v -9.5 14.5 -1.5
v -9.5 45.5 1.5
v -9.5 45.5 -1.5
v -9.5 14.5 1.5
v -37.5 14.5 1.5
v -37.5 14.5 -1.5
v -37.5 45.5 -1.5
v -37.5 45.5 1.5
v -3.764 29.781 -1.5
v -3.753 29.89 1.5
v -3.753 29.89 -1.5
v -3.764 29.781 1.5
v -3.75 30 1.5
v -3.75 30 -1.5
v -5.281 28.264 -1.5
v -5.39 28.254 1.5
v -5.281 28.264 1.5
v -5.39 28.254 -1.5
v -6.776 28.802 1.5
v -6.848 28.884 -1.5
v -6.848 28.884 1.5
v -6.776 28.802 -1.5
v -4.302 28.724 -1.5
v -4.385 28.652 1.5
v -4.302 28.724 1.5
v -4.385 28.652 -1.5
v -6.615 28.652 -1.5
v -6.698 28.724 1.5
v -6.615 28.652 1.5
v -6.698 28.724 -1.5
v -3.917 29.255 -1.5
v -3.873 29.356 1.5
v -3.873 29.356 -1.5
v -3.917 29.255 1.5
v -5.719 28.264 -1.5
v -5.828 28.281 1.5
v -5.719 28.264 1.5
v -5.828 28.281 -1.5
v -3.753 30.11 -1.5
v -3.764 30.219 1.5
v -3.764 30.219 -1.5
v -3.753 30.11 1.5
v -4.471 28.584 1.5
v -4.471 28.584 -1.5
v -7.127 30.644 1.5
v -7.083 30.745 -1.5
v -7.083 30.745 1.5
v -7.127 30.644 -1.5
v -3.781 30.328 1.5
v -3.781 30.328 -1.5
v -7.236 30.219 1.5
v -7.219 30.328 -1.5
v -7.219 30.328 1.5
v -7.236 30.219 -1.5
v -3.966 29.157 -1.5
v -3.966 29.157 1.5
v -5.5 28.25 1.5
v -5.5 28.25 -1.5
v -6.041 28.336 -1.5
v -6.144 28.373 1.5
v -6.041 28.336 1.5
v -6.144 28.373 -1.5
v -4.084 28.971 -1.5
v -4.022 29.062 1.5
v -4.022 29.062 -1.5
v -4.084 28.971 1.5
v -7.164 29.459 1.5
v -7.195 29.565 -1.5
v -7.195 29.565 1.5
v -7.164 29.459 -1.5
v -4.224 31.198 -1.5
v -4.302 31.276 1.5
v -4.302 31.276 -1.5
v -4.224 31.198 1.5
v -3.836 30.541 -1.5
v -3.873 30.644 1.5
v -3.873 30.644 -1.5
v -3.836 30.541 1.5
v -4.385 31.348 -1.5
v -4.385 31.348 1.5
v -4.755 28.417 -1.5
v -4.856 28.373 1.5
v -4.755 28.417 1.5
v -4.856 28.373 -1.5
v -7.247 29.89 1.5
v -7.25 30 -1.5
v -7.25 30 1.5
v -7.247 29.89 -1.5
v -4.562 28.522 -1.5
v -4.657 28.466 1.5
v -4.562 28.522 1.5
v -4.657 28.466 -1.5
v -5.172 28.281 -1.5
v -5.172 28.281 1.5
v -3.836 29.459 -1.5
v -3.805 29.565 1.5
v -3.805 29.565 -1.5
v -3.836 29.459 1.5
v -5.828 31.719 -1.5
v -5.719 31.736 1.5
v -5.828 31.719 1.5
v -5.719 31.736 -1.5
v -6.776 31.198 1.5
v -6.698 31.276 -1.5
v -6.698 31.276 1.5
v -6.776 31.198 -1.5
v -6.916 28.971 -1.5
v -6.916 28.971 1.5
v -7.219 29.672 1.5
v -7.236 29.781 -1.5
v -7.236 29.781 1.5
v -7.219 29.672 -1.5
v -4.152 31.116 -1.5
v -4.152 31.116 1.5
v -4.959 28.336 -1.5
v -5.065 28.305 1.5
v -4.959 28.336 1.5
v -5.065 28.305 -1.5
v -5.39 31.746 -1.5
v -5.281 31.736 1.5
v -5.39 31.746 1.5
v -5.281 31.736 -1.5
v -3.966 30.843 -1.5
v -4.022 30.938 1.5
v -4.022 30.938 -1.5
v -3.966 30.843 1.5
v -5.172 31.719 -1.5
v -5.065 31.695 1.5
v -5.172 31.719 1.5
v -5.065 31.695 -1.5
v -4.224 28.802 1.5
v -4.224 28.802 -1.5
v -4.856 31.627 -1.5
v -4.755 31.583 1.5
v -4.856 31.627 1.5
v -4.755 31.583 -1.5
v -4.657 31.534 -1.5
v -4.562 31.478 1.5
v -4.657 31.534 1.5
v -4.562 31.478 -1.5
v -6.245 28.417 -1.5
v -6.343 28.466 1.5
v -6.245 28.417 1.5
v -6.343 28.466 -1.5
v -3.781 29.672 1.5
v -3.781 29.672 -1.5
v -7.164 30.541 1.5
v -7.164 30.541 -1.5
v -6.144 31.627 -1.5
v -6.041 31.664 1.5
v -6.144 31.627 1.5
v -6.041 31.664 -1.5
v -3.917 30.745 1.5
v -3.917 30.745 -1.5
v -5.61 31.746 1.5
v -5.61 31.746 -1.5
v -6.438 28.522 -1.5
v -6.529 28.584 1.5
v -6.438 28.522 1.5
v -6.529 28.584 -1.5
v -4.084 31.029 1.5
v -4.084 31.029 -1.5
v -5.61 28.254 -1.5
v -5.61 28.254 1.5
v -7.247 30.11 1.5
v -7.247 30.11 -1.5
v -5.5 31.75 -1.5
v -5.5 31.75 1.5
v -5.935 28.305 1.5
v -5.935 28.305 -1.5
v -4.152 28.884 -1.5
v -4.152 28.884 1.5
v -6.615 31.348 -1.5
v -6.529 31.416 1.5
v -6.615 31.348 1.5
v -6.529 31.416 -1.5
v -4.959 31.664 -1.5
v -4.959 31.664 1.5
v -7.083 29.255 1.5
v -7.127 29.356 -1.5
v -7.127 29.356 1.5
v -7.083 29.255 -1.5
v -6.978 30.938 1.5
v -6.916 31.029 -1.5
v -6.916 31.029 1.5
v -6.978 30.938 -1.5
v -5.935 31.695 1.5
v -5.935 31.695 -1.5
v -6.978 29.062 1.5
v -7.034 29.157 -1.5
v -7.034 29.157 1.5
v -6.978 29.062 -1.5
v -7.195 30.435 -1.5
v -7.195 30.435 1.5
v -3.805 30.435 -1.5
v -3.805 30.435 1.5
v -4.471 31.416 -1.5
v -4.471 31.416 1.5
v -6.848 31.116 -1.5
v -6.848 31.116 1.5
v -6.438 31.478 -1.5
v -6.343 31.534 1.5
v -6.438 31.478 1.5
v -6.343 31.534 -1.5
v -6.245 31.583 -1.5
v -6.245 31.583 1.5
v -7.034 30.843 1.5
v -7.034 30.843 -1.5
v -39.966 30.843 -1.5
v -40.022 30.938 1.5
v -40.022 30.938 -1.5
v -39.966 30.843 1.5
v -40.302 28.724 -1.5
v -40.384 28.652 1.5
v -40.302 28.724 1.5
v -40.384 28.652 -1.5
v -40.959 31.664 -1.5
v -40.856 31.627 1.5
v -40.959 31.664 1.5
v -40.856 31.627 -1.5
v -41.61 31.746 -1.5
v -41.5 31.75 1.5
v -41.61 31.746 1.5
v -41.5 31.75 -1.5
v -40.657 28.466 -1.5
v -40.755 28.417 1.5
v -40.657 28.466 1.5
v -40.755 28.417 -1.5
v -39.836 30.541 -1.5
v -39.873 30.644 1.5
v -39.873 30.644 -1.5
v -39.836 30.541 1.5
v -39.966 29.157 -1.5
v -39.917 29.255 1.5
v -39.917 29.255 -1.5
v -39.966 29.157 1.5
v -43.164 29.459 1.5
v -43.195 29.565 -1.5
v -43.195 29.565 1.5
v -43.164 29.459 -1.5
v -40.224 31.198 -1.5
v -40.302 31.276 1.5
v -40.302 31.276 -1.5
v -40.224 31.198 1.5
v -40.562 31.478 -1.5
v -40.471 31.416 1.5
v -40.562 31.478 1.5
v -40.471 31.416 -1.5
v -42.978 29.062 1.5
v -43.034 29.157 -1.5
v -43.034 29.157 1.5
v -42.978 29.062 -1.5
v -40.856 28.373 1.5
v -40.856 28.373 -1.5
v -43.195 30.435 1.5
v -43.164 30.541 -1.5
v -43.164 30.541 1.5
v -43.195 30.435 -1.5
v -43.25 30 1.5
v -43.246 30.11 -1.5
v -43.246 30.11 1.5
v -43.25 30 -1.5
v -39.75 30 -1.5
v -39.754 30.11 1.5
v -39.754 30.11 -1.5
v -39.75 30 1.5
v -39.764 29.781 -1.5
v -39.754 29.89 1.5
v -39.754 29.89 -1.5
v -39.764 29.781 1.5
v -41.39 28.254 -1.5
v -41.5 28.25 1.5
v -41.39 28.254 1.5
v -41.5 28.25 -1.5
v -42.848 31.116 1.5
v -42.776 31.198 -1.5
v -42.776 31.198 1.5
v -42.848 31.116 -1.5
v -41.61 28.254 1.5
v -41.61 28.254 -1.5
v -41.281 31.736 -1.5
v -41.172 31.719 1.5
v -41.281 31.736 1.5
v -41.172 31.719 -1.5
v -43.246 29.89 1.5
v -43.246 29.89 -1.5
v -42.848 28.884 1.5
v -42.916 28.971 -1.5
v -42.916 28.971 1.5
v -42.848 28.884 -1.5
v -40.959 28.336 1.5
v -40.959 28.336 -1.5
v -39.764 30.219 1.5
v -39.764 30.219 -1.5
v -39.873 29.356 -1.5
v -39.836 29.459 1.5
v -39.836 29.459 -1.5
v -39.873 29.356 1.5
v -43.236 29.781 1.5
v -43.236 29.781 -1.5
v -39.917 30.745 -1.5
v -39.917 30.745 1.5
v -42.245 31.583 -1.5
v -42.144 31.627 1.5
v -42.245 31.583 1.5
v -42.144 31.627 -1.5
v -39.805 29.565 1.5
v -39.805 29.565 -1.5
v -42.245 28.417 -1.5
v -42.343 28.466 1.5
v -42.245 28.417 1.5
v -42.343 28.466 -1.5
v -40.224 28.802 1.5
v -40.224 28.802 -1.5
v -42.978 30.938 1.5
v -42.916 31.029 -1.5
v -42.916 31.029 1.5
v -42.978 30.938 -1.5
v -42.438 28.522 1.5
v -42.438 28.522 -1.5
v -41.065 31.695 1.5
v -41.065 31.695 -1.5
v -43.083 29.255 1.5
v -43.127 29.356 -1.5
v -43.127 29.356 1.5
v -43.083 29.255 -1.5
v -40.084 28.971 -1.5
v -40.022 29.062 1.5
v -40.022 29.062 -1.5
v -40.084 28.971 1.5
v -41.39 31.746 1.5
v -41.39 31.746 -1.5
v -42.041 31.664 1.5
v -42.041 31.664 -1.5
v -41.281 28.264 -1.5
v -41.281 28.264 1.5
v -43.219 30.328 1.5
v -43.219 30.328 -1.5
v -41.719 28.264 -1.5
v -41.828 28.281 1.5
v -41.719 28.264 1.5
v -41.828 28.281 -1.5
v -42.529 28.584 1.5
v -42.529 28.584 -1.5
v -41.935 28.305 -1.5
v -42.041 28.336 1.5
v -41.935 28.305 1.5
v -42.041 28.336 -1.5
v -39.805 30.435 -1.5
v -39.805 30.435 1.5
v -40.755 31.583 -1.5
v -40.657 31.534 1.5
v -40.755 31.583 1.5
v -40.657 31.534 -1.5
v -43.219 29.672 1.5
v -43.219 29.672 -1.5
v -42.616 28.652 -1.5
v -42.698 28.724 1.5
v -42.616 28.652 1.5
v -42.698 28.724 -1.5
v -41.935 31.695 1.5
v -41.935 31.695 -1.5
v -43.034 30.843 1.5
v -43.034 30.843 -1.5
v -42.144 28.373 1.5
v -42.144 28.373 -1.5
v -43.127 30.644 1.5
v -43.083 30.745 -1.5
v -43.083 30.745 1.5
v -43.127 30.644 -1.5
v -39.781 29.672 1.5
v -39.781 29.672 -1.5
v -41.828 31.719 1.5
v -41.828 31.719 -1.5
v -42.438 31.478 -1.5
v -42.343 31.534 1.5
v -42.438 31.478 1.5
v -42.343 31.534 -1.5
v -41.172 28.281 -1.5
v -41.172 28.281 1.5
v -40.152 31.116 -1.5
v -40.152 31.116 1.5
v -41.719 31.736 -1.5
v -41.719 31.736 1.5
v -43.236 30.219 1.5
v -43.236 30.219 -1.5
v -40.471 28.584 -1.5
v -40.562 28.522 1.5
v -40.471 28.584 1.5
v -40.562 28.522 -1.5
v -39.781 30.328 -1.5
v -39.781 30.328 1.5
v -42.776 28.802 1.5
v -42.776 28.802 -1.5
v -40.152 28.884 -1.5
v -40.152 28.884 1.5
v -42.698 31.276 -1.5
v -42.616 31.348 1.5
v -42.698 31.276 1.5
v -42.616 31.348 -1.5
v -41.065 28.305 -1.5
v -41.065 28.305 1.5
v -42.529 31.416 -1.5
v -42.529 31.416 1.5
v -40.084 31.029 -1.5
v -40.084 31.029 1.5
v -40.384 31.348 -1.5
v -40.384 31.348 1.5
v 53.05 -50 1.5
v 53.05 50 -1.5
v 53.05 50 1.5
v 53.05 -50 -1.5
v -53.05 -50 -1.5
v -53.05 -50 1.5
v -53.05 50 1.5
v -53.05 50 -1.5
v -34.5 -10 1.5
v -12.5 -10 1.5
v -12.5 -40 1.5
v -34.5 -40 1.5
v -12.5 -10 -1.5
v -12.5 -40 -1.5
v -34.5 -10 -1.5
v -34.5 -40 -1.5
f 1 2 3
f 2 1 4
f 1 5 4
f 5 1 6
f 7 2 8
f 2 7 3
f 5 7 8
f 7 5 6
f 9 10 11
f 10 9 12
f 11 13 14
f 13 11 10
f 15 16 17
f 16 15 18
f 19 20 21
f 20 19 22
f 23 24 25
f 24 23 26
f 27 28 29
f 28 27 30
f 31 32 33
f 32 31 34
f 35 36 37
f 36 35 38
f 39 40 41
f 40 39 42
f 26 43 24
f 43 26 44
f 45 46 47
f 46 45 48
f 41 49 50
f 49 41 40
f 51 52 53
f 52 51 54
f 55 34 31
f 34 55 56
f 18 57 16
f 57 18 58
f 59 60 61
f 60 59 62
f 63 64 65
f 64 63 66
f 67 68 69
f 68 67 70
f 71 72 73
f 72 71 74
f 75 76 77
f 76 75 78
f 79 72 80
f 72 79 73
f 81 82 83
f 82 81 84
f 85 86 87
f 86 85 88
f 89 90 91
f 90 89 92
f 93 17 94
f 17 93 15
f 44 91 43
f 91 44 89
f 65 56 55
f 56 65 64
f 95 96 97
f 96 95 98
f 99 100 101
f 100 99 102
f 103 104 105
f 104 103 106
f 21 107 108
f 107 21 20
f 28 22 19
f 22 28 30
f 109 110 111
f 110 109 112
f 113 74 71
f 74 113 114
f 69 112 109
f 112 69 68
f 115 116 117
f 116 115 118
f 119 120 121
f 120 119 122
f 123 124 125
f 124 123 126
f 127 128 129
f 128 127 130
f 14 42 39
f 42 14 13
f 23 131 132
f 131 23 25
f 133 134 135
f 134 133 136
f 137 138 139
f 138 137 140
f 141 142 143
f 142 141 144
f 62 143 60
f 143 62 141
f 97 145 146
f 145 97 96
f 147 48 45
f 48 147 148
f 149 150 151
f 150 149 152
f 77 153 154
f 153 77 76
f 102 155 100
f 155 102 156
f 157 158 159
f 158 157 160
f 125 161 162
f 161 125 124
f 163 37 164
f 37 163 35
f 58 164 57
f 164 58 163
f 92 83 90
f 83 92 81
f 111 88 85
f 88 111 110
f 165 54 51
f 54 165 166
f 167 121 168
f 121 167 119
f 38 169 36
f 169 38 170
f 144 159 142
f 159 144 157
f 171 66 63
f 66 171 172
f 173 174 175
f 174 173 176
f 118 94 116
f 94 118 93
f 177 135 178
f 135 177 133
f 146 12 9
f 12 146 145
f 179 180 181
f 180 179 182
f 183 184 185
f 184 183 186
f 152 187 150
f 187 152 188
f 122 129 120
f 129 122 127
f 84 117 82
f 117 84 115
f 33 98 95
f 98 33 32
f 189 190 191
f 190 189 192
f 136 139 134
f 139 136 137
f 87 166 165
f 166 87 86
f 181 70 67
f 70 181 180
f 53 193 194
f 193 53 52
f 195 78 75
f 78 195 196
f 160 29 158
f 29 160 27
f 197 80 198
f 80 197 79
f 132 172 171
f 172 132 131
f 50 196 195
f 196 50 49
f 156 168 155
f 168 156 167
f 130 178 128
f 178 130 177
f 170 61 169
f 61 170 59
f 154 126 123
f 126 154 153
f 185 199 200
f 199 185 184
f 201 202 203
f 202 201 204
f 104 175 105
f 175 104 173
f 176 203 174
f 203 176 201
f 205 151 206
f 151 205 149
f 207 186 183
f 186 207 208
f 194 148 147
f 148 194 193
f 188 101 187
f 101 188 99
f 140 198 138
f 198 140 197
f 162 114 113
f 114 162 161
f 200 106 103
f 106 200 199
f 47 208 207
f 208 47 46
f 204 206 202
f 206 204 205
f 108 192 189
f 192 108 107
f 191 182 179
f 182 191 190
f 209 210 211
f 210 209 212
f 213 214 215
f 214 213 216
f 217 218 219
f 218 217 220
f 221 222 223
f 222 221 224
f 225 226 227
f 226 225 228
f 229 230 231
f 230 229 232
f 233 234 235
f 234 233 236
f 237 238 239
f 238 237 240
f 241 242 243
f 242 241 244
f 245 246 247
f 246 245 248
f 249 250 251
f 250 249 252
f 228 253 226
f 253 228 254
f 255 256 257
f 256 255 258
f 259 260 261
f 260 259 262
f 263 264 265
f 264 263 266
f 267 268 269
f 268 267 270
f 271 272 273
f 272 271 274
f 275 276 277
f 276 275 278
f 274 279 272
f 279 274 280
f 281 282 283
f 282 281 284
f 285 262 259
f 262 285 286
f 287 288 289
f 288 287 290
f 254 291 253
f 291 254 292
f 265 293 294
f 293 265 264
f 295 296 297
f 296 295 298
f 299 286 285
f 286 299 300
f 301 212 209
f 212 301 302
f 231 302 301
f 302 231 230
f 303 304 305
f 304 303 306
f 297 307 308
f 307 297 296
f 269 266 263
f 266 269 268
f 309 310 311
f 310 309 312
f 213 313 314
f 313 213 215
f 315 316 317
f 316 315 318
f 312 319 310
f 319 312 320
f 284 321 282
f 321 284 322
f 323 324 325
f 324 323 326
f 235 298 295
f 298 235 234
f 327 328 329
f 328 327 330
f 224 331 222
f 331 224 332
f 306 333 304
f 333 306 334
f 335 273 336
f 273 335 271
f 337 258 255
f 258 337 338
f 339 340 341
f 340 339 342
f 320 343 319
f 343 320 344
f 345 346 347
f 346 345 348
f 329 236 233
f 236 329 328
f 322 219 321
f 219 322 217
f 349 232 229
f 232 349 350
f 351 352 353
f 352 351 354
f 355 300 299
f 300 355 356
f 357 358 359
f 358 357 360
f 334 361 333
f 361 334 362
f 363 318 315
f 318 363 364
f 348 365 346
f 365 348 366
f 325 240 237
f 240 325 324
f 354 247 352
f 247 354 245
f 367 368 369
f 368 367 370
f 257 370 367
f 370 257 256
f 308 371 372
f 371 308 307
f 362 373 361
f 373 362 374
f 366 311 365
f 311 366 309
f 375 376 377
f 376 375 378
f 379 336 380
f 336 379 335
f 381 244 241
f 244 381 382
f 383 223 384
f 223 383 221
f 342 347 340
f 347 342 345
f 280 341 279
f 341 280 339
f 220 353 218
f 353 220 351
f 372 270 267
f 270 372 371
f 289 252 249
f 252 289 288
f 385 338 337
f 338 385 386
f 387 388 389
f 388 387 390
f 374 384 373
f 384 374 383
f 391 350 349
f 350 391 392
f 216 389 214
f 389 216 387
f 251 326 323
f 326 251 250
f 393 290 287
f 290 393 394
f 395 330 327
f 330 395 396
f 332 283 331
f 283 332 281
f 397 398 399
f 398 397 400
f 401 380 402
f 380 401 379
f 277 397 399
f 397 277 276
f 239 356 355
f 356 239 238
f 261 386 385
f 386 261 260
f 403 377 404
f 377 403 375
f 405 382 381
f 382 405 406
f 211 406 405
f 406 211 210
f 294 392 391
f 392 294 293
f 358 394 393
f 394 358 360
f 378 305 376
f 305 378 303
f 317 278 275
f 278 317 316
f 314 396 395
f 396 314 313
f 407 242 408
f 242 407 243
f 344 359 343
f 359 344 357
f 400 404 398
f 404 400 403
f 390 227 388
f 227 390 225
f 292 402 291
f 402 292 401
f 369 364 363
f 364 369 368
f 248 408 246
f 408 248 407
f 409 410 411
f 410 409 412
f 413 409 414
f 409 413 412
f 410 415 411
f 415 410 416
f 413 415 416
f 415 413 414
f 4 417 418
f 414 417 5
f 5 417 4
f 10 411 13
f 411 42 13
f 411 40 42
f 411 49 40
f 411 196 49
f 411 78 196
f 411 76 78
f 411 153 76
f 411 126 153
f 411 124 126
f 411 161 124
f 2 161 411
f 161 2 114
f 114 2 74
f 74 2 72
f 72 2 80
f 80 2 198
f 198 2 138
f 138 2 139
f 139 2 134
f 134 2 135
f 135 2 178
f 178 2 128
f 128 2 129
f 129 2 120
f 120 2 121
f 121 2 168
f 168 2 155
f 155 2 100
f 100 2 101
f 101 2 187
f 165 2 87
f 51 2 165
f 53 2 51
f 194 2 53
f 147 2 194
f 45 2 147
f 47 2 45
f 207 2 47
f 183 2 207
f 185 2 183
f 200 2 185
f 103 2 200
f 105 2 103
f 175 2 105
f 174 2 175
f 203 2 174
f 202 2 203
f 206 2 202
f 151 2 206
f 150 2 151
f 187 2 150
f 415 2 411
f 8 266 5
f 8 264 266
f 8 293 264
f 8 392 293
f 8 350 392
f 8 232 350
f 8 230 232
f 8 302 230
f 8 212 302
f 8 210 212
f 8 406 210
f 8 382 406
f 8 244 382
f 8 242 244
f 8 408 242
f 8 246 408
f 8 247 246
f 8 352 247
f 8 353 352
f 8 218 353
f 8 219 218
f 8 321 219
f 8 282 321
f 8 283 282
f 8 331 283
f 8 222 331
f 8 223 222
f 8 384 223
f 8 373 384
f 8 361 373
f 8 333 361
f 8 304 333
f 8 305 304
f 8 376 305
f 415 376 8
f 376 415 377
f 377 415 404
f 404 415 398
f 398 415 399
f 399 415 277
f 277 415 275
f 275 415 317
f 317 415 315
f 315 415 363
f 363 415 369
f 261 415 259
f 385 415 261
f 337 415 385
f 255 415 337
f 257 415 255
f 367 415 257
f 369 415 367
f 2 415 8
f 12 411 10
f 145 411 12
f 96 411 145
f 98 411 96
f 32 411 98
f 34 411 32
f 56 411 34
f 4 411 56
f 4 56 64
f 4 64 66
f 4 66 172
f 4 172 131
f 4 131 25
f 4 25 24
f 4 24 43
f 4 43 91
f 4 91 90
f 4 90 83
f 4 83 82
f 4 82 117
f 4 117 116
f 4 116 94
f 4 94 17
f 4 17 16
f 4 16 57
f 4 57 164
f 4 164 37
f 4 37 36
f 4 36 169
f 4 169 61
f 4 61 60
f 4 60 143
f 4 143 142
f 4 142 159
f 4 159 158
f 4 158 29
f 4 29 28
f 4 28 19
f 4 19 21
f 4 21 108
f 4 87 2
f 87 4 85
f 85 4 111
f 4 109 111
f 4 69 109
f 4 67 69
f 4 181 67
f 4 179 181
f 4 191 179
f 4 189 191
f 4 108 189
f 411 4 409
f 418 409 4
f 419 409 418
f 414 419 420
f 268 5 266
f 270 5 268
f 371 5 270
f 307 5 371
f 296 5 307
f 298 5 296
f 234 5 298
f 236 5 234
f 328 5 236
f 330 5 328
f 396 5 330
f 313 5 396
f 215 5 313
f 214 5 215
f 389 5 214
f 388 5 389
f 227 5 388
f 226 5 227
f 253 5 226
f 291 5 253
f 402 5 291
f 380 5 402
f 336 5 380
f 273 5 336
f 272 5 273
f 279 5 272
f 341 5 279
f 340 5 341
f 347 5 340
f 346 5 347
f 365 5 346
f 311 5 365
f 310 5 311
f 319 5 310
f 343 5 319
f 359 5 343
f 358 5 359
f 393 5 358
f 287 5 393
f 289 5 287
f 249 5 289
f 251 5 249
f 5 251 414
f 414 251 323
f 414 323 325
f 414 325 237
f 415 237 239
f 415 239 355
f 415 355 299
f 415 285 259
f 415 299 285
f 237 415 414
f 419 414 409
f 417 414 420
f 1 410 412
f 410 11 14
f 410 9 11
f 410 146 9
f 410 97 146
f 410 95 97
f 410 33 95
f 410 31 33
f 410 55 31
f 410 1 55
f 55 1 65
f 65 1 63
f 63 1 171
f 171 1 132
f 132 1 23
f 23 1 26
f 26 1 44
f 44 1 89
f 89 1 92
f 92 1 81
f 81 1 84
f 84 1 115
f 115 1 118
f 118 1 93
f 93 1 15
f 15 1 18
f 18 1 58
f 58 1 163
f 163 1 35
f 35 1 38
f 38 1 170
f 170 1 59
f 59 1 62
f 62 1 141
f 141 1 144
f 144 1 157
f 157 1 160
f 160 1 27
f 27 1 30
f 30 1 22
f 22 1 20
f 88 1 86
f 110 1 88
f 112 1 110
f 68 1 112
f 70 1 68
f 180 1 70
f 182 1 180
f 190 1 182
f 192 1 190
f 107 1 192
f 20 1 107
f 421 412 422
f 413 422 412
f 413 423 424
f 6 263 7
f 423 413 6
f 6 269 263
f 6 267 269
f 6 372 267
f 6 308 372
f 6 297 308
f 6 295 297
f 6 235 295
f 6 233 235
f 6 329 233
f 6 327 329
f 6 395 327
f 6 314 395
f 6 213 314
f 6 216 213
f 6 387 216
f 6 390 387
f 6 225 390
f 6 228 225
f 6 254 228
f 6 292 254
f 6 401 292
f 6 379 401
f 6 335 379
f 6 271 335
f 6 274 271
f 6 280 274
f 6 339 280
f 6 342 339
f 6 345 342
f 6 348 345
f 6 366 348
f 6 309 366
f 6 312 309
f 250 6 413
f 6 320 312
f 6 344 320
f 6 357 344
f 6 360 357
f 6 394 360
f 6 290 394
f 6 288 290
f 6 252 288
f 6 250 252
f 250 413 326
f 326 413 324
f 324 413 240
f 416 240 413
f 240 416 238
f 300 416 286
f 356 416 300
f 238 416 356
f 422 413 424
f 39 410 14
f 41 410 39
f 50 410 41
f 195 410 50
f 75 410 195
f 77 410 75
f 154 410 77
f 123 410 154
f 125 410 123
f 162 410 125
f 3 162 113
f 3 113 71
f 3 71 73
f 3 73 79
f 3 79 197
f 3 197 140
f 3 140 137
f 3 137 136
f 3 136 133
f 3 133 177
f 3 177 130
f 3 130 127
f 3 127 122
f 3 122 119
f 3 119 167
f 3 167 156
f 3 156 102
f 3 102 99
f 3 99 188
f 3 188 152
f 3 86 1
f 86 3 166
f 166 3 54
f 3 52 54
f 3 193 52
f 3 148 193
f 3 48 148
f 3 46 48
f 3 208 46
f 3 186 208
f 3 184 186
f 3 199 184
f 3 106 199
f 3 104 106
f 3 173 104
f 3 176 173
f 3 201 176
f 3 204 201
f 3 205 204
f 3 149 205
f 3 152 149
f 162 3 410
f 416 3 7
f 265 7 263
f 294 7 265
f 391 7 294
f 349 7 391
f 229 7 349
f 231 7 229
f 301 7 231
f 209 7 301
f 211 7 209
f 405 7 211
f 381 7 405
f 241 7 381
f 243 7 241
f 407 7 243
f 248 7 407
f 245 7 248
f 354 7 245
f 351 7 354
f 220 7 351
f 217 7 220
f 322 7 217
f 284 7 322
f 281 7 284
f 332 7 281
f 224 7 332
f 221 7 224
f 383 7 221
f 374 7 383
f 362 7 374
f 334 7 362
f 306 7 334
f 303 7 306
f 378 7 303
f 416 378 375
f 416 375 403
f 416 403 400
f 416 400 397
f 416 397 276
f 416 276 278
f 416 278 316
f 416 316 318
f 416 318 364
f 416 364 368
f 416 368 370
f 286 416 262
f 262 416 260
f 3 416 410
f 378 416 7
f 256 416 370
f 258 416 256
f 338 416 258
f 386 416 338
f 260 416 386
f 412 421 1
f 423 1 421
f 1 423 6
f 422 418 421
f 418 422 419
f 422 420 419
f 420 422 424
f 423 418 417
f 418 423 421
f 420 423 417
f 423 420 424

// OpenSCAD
// file: constants.scad
inch=25.4;


length = 5*inch;
height = 100;
width=10*inch;
base_height = 0.125*inch;
wall_thickness = 3;
through_4_40 = 3.26;
through_3_mm = 3.4;
$fn=100;

extrusion_width = 14.9;
// main file
include <constants.scad>

module back_panel(){
    translate([length/2, width - extrusion_width/2, height/2])
    {
        
        color("#0000cc"){
            difference(){
                cube([length-extrusion_width-6, wall_thickness, height], center=true);
               
                // Power entry
                translate([-length/2 + 40, 0, -height/2+20])
                {
                    cube([28, wall_thickness*2, 31], center=true);
                    translate([36/2, 0, 0]) rotate([90, 0, 0])cylinder(d=3.5, h=wall_thickness *2, center=true);
                    translate([-36/2, 0, 0]) rotate([90, 0, 0])cylinder(d=3.5, h=wall_thickness *2, center=true);
                }
                //Switch
                translate([-length/2 + 40, 0, height/2-25])
                {
                    cube([22, wall_thickness*2, 30], center=true);
                }
            }
        }
            translate([40, wall_thickness/2, -height/4])
            rotate([90, 0, 180])
            linear_extrude(wall_thickness/2, center=true)
            
            scale(0.5)
            import("Group Logo.dxf", convexity=5);
        
    }
}

rotate([90,0,0])
translate([-length/2, -width + extrusion_width/2, -height/2])
back_panel();
